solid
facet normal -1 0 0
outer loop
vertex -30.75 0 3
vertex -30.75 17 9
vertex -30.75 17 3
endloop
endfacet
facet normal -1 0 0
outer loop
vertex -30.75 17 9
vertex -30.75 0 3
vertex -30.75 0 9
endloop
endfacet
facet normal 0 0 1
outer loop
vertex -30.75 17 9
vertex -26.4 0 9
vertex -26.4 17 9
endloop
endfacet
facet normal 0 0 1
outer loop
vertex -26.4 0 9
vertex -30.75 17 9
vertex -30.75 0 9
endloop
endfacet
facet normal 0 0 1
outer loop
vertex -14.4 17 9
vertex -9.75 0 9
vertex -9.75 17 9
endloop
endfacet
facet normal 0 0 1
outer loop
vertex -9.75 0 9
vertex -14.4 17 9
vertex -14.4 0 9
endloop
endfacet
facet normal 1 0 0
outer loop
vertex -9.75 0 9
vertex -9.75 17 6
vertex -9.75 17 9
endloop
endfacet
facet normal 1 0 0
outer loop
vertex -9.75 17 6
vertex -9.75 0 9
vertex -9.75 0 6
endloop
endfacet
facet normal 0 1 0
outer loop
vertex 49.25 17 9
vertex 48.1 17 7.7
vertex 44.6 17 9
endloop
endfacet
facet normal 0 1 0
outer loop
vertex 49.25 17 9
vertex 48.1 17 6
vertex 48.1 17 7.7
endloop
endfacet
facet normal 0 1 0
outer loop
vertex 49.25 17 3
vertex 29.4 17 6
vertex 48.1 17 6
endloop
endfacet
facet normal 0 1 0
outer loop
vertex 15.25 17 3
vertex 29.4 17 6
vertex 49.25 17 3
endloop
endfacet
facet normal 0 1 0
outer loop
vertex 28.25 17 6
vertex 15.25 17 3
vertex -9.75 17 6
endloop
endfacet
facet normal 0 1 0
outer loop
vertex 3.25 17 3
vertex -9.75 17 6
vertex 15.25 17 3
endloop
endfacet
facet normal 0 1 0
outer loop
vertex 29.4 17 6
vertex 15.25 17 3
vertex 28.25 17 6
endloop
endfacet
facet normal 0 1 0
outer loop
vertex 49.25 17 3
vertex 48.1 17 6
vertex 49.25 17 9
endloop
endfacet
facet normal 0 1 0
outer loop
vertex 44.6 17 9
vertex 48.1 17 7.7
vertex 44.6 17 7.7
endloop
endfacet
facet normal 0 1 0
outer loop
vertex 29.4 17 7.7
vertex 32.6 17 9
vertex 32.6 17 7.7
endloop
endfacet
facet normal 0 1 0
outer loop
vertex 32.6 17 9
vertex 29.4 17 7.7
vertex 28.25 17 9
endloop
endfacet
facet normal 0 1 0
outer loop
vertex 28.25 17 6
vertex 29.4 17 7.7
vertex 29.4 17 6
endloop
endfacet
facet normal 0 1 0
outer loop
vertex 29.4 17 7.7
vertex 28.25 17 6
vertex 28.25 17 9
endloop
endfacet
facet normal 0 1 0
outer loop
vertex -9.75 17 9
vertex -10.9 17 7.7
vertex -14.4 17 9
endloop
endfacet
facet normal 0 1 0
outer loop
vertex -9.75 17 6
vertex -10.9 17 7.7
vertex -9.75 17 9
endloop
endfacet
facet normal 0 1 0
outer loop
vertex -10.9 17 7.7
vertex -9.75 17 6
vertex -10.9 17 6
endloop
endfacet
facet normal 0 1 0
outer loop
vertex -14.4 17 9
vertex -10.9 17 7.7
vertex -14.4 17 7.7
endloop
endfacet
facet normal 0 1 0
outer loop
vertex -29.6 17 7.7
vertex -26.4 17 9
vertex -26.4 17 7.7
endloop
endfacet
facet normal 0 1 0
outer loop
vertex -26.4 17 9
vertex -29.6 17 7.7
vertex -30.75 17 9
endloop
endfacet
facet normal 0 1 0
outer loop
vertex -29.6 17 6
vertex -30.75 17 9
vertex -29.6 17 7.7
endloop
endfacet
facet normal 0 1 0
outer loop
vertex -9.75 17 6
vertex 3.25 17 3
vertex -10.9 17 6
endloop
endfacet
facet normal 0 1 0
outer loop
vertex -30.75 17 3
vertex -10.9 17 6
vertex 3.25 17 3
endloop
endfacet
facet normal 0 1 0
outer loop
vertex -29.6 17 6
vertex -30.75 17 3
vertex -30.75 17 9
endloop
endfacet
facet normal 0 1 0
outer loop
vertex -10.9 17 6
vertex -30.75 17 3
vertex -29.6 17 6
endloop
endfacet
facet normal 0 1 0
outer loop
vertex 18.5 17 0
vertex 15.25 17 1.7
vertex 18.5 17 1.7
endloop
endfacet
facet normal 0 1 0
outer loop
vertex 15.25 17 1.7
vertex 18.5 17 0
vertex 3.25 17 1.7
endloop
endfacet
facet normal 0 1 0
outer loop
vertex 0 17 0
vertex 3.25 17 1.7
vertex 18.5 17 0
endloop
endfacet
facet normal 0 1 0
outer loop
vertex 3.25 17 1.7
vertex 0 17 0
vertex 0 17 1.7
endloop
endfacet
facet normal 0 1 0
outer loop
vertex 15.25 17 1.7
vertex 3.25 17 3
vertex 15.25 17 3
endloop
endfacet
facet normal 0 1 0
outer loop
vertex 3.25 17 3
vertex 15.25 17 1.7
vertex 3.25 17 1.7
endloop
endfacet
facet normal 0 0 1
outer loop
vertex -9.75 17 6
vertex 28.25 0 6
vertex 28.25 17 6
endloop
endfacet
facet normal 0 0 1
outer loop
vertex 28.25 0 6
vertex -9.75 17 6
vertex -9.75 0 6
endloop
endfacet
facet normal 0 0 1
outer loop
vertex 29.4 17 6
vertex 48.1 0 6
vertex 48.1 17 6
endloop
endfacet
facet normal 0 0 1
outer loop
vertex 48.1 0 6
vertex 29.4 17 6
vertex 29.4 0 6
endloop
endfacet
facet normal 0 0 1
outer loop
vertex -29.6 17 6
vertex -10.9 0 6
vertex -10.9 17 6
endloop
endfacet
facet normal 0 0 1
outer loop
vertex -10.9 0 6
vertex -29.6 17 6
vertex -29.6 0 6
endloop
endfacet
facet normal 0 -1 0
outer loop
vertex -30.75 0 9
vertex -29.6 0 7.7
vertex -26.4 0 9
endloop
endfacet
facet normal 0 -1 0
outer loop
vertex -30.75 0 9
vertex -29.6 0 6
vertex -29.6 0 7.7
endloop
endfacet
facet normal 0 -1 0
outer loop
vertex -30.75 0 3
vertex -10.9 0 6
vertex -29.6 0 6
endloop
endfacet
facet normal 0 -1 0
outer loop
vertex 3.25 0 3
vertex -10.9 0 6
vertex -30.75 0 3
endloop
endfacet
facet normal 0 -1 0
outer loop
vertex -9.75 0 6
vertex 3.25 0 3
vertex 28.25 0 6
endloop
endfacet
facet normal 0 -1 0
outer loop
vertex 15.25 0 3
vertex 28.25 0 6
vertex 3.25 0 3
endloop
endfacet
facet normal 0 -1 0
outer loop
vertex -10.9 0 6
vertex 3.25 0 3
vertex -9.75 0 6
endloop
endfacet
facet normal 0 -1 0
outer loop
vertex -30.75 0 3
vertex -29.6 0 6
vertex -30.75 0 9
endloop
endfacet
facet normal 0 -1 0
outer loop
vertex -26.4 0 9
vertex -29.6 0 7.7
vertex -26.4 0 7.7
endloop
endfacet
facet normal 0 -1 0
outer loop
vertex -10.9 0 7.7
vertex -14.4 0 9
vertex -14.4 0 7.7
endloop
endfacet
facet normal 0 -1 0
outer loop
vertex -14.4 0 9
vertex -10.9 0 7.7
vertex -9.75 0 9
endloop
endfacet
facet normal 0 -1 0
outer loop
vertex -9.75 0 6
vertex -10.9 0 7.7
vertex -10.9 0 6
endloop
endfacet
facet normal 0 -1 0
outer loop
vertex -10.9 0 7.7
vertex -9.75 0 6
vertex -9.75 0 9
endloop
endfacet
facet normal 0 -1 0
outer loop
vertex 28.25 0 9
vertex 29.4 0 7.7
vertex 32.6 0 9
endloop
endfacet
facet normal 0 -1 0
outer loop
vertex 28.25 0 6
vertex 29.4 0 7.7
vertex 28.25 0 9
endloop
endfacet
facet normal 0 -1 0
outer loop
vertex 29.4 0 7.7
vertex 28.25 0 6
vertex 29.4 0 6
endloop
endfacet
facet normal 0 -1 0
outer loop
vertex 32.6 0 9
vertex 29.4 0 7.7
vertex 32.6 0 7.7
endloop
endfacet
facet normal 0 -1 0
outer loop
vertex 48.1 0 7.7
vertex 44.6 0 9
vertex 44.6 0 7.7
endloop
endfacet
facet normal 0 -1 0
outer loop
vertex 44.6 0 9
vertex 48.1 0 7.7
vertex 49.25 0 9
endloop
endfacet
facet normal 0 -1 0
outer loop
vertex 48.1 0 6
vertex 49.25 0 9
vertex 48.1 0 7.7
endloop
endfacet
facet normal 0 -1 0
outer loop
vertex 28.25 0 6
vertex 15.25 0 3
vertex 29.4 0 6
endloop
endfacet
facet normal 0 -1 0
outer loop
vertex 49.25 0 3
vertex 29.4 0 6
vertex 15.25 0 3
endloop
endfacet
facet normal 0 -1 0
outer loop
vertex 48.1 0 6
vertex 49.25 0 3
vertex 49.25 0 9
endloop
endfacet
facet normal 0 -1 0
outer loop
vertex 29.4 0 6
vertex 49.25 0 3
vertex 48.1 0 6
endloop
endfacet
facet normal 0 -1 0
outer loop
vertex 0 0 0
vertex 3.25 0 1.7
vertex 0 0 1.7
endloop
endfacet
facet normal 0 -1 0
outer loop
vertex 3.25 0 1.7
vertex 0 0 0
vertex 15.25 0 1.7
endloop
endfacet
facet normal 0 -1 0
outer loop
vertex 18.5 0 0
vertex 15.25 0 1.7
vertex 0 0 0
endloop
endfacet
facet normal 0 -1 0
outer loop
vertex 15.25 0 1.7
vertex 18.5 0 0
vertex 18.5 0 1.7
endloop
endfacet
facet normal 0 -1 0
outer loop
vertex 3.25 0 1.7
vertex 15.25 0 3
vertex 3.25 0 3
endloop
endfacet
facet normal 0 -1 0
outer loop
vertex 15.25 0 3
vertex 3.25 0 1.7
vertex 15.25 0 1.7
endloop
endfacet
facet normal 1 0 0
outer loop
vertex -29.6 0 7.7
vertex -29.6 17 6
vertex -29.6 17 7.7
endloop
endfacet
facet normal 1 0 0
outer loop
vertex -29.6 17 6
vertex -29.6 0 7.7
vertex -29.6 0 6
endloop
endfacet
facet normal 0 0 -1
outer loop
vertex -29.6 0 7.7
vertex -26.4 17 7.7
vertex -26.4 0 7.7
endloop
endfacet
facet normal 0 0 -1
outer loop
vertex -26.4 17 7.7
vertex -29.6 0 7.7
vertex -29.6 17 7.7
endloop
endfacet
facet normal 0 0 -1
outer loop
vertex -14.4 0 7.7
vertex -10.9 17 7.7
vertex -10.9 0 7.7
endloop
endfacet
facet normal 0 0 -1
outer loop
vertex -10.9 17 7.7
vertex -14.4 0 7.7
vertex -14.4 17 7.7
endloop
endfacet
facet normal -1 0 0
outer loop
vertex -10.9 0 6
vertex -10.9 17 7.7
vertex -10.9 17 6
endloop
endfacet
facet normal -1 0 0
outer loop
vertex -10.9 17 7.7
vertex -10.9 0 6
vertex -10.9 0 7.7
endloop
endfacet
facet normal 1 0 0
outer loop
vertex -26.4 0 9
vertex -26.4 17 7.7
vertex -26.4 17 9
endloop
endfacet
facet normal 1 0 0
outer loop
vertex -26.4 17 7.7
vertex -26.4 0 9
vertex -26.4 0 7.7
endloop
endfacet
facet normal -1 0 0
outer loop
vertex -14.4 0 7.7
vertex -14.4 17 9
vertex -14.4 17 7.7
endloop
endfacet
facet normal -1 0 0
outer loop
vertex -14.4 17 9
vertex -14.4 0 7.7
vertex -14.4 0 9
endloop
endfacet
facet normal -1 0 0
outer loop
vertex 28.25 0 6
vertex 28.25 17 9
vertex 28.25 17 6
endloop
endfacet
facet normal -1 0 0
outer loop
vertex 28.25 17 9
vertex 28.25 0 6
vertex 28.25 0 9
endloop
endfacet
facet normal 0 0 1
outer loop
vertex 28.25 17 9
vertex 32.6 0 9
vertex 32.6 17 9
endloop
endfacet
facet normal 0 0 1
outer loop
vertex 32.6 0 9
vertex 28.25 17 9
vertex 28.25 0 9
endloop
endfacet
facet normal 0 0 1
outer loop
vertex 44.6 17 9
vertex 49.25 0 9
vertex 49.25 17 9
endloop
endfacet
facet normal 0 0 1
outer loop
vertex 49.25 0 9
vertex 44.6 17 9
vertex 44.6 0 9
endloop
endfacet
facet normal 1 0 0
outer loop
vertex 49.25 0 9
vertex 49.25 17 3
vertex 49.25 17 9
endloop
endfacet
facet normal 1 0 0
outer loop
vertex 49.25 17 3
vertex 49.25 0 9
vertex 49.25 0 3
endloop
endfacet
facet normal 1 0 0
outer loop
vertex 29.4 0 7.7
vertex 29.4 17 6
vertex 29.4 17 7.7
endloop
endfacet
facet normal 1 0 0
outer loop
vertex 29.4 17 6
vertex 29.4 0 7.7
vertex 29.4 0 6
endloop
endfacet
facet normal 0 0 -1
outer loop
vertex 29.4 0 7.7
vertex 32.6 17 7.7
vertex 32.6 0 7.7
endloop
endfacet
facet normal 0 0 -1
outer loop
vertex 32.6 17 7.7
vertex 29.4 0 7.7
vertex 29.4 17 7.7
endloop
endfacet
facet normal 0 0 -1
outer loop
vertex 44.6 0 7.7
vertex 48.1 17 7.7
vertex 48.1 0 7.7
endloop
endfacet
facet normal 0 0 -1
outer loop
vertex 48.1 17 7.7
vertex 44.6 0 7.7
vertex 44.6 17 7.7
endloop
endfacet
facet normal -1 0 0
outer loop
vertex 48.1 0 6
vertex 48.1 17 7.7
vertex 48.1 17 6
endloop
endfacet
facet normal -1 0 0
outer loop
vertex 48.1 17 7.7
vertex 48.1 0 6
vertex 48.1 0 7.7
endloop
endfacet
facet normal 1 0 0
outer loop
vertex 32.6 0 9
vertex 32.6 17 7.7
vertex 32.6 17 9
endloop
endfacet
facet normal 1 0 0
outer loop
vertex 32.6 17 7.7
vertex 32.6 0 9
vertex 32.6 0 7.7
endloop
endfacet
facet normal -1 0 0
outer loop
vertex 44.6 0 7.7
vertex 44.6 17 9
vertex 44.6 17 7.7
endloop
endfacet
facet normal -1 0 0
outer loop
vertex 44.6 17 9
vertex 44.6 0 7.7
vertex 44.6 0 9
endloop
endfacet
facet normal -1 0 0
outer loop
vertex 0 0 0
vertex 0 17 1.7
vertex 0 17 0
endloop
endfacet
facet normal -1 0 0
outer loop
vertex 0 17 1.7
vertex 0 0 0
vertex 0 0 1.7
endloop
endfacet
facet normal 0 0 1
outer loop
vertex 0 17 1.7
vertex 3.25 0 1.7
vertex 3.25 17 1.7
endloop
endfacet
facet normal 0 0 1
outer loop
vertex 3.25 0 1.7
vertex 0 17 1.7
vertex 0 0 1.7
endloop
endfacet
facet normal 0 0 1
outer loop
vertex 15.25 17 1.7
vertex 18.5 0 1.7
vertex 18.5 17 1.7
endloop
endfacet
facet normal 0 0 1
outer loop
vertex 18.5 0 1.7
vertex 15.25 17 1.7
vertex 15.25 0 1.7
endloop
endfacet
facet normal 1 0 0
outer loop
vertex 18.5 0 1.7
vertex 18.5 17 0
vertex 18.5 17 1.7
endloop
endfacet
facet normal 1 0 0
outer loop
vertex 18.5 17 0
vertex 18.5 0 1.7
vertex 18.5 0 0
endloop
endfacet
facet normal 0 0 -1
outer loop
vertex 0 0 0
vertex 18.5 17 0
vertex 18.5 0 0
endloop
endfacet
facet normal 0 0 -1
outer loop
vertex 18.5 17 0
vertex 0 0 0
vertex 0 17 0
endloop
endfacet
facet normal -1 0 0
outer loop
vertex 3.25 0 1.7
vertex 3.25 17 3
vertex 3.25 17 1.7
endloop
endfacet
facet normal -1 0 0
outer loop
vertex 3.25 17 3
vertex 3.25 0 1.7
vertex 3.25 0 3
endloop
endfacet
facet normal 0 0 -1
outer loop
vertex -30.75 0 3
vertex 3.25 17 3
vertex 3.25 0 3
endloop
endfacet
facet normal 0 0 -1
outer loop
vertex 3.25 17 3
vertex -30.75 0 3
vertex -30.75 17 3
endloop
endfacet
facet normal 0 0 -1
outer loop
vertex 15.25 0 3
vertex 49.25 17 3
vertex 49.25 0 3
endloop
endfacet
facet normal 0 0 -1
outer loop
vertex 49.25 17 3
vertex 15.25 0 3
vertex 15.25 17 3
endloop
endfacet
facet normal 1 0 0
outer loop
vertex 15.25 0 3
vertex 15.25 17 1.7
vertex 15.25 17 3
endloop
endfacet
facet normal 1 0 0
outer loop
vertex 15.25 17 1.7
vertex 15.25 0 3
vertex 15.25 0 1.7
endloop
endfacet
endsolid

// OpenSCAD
// hot shoe splitter

module hotshoe(){
    difference(){
        cube([21, 17, 3]);
        
        translate([1.15,-0.5,0])
        cube([18.7,18,1.7]);
        
        translate([(18.7-12)/2+1,-0.5,0])
        cube([12, 18, 3.5]);
    }
}

// shoe on cam: 18.4 wide, 17 deep, 1.7 high, metal-latches: 1mm thick
// space between metal latches: 12mm
cube([18.5, 17,1.7]);

translate([(18.5-12)/2,0,1.5])
cube([12, 17,1.5]);

translate([-40+18.5/2,0,3])
cube([80, 17,3]);

translate([-40+18.25-9,0,6])
hotshoe();

translate([28.25,0,6])
hotshoe();
